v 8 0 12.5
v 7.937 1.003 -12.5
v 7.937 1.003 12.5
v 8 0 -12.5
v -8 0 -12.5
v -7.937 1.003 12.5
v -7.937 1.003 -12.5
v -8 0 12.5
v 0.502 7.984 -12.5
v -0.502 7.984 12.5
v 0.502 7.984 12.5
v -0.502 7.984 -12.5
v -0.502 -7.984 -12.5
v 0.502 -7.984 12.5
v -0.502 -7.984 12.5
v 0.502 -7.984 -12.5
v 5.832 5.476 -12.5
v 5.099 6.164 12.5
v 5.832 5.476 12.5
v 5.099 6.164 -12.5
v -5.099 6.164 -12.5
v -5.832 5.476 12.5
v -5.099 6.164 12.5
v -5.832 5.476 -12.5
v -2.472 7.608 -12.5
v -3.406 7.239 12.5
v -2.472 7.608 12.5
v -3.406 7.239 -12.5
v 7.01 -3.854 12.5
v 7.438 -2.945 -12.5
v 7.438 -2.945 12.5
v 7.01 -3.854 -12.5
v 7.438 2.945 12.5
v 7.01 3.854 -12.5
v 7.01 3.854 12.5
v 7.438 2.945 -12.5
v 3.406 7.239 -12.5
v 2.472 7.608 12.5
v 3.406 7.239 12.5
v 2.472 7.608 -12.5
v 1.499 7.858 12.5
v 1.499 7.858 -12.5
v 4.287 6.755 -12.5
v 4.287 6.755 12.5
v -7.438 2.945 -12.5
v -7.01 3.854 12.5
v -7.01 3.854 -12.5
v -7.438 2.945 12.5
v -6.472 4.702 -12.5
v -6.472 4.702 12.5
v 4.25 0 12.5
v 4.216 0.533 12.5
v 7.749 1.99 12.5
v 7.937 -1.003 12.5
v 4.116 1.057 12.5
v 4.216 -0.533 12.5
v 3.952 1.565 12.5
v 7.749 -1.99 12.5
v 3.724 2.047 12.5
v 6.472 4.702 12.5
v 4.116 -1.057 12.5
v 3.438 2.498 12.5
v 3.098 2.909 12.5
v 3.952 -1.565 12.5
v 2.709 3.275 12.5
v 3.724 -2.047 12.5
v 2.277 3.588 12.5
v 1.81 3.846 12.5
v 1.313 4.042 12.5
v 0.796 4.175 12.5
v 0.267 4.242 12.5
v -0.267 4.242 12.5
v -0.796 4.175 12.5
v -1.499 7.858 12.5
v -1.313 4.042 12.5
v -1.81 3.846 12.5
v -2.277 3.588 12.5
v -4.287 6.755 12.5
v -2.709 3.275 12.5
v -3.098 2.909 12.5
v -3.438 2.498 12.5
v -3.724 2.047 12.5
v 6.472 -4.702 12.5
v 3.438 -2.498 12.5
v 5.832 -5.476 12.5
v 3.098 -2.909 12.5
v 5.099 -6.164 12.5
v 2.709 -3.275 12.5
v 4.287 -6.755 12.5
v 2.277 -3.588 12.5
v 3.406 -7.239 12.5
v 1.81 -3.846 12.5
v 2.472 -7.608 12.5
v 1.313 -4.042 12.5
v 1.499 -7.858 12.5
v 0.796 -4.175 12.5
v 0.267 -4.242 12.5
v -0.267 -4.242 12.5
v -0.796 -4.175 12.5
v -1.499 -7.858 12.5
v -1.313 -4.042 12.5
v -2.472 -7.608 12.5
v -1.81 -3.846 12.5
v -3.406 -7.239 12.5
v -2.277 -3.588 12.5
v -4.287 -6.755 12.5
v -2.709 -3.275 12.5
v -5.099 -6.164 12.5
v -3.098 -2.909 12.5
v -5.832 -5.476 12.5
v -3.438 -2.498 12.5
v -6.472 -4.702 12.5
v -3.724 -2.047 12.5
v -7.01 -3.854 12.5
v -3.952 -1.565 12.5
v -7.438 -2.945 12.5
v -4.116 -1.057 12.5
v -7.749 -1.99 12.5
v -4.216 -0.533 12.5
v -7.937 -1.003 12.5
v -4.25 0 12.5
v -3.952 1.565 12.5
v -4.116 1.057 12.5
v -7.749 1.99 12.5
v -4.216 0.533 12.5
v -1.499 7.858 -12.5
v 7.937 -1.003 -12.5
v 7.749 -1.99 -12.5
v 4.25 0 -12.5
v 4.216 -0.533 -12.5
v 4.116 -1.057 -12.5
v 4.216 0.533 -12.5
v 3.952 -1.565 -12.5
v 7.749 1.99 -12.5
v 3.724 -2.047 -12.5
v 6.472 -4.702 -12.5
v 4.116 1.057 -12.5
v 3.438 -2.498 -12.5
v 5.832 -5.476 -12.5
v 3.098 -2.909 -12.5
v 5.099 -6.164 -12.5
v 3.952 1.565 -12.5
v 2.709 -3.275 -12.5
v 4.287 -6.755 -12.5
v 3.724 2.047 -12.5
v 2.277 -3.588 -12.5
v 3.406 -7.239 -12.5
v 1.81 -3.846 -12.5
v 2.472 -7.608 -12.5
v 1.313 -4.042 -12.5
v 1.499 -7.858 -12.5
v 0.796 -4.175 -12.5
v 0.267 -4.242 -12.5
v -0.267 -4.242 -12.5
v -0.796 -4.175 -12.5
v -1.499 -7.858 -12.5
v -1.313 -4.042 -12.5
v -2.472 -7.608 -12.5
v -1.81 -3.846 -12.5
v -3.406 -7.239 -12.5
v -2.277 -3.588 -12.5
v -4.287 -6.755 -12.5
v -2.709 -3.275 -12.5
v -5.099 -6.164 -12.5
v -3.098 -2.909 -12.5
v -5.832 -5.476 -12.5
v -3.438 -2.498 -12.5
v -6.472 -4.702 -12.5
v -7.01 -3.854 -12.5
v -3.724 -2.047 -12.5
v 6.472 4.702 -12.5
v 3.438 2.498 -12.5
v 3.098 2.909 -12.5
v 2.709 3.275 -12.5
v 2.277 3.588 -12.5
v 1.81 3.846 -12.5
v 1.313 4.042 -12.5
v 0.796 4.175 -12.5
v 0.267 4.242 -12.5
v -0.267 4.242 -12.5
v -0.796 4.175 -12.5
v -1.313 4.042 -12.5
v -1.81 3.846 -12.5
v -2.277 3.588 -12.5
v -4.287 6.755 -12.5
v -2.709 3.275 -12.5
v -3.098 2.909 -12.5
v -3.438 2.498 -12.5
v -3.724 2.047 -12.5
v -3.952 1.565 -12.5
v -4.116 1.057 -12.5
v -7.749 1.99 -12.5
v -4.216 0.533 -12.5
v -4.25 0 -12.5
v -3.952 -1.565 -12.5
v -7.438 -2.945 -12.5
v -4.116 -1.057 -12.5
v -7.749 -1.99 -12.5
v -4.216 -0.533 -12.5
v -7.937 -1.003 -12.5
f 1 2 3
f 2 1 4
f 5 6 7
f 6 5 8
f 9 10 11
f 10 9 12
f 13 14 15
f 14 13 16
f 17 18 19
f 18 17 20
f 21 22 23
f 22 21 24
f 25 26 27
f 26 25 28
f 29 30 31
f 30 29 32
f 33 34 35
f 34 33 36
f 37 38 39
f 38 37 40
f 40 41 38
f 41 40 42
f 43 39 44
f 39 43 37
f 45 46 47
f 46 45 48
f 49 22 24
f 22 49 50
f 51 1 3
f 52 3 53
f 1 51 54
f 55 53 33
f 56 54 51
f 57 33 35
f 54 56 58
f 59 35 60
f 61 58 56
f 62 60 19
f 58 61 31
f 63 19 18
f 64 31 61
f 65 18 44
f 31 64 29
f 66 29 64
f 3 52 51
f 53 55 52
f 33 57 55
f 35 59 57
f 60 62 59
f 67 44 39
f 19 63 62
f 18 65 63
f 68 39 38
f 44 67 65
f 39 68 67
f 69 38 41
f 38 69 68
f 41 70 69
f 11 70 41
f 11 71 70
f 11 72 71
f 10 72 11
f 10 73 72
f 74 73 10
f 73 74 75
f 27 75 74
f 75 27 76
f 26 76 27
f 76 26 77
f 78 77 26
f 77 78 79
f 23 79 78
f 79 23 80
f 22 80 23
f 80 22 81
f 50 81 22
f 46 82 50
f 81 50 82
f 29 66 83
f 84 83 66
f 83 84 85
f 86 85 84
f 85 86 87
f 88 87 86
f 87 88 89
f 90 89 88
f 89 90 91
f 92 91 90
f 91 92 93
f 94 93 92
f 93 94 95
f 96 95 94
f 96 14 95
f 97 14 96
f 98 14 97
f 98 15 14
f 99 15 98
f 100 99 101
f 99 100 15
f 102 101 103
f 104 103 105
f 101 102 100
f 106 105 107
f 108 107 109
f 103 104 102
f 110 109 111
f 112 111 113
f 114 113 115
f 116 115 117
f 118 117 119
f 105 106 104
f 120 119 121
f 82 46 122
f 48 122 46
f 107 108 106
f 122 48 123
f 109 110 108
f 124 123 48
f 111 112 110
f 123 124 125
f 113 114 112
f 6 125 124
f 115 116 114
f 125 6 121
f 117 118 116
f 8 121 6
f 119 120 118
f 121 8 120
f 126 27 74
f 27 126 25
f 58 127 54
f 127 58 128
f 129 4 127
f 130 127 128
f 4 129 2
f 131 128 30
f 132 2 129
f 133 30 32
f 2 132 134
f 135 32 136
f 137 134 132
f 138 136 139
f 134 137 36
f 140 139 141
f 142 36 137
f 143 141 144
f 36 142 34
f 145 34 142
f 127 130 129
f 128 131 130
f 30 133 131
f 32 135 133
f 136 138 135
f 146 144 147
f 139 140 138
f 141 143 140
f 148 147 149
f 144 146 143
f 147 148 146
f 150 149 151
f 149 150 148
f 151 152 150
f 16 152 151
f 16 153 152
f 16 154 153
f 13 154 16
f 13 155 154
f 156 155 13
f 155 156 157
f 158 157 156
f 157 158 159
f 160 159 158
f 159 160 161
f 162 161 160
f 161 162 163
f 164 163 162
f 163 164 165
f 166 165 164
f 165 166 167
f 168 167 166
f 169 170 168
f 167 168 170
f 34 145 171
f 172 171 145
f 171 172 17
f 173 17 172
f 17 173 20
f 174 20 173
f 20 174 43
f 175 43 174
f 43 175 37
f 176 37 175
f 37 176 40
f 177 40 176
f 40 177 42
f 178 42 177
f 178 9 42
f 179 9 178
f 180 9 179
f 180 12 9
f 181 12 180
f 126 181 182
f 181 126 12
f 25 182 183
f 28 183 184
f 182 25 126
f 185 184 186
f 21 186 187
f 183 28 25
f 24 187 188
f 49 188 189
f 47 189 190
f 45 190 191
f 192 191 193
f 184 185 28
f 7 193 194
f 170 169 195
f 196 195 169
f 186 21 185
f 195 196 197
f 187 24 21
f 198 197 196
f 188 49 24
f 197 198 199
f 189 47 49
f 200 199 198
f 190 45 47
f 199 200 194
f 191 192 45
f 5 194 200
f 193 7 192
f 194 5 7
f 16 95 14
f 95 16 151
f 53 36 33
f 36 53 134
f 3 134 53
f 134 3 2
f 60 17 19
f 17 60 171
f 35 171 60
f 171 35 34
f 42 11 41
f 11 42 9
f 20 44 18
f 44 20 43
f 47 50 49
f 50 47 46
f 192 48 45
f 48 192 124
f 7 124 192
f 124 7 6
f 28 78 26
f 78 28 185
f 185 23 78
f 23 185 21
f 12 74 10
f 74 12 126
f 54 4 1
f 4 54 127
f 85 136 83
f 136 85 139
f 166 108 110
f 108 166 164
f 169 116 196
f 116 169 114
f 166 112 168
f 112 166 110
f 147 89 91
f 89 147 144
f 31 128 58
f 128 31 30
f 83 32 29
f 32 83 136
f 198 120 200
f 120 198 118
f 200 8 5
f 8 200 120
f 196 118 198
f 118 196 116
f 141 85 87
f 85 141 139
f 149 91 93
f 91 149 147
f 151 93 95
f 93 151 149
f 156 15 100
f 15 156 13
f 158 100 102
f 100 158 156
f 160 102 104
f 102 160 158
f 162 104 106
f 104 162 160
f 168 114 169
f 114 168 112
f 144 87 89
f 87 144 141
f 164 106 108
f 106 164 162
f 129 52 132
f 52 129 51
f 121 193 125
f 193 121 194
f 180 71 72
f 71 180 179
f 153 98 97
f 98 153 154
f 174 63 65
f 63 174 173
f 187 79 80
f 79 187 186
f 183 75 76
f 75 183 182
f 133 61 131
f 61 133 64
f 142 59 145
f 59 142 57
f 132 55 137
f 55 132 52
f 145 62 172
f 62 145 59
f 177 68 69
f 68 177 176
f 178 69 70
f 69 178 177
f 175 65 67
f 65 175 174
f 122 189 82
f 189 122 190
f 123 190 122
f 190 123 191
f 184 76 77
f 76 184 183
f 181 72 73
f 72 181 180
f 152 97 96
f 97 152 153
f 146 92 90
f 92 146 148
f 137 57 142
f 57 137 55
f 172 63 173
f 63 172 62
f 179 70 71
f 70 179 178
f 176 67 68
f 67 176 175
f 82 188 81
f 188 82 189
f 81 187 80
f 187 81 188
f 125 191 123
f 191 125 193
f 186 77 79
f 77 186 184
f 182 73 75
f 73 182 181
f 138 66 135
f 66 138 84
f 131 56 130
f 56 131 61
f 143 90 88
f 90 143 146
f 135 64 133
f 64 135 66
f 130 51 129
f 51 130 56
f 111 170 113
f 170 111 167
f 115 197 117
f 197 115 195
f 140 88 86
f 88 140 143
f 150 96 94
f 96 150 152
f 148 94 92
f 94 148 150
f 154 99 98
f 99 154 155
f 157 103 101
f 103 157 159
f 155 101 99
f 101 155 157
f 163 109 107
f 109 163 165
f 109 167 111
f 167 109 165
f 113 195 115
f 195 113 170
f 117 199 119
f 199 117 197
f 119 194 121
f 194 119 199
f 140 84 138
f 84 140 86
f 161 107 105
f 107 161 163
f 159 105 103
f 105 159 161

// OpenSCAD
$fn = 50;


difference() {
	union() {
		translate(v = [0, 0, -12.5000000000]) {
			cylinder(h = 25, r = 8.0000000000);
		}
	}
	union() {
		translate(v = [0, 0, -100.0000000000]) {
			cylinder(h = 200, r = 4.2500000000);
		}
	}
}
